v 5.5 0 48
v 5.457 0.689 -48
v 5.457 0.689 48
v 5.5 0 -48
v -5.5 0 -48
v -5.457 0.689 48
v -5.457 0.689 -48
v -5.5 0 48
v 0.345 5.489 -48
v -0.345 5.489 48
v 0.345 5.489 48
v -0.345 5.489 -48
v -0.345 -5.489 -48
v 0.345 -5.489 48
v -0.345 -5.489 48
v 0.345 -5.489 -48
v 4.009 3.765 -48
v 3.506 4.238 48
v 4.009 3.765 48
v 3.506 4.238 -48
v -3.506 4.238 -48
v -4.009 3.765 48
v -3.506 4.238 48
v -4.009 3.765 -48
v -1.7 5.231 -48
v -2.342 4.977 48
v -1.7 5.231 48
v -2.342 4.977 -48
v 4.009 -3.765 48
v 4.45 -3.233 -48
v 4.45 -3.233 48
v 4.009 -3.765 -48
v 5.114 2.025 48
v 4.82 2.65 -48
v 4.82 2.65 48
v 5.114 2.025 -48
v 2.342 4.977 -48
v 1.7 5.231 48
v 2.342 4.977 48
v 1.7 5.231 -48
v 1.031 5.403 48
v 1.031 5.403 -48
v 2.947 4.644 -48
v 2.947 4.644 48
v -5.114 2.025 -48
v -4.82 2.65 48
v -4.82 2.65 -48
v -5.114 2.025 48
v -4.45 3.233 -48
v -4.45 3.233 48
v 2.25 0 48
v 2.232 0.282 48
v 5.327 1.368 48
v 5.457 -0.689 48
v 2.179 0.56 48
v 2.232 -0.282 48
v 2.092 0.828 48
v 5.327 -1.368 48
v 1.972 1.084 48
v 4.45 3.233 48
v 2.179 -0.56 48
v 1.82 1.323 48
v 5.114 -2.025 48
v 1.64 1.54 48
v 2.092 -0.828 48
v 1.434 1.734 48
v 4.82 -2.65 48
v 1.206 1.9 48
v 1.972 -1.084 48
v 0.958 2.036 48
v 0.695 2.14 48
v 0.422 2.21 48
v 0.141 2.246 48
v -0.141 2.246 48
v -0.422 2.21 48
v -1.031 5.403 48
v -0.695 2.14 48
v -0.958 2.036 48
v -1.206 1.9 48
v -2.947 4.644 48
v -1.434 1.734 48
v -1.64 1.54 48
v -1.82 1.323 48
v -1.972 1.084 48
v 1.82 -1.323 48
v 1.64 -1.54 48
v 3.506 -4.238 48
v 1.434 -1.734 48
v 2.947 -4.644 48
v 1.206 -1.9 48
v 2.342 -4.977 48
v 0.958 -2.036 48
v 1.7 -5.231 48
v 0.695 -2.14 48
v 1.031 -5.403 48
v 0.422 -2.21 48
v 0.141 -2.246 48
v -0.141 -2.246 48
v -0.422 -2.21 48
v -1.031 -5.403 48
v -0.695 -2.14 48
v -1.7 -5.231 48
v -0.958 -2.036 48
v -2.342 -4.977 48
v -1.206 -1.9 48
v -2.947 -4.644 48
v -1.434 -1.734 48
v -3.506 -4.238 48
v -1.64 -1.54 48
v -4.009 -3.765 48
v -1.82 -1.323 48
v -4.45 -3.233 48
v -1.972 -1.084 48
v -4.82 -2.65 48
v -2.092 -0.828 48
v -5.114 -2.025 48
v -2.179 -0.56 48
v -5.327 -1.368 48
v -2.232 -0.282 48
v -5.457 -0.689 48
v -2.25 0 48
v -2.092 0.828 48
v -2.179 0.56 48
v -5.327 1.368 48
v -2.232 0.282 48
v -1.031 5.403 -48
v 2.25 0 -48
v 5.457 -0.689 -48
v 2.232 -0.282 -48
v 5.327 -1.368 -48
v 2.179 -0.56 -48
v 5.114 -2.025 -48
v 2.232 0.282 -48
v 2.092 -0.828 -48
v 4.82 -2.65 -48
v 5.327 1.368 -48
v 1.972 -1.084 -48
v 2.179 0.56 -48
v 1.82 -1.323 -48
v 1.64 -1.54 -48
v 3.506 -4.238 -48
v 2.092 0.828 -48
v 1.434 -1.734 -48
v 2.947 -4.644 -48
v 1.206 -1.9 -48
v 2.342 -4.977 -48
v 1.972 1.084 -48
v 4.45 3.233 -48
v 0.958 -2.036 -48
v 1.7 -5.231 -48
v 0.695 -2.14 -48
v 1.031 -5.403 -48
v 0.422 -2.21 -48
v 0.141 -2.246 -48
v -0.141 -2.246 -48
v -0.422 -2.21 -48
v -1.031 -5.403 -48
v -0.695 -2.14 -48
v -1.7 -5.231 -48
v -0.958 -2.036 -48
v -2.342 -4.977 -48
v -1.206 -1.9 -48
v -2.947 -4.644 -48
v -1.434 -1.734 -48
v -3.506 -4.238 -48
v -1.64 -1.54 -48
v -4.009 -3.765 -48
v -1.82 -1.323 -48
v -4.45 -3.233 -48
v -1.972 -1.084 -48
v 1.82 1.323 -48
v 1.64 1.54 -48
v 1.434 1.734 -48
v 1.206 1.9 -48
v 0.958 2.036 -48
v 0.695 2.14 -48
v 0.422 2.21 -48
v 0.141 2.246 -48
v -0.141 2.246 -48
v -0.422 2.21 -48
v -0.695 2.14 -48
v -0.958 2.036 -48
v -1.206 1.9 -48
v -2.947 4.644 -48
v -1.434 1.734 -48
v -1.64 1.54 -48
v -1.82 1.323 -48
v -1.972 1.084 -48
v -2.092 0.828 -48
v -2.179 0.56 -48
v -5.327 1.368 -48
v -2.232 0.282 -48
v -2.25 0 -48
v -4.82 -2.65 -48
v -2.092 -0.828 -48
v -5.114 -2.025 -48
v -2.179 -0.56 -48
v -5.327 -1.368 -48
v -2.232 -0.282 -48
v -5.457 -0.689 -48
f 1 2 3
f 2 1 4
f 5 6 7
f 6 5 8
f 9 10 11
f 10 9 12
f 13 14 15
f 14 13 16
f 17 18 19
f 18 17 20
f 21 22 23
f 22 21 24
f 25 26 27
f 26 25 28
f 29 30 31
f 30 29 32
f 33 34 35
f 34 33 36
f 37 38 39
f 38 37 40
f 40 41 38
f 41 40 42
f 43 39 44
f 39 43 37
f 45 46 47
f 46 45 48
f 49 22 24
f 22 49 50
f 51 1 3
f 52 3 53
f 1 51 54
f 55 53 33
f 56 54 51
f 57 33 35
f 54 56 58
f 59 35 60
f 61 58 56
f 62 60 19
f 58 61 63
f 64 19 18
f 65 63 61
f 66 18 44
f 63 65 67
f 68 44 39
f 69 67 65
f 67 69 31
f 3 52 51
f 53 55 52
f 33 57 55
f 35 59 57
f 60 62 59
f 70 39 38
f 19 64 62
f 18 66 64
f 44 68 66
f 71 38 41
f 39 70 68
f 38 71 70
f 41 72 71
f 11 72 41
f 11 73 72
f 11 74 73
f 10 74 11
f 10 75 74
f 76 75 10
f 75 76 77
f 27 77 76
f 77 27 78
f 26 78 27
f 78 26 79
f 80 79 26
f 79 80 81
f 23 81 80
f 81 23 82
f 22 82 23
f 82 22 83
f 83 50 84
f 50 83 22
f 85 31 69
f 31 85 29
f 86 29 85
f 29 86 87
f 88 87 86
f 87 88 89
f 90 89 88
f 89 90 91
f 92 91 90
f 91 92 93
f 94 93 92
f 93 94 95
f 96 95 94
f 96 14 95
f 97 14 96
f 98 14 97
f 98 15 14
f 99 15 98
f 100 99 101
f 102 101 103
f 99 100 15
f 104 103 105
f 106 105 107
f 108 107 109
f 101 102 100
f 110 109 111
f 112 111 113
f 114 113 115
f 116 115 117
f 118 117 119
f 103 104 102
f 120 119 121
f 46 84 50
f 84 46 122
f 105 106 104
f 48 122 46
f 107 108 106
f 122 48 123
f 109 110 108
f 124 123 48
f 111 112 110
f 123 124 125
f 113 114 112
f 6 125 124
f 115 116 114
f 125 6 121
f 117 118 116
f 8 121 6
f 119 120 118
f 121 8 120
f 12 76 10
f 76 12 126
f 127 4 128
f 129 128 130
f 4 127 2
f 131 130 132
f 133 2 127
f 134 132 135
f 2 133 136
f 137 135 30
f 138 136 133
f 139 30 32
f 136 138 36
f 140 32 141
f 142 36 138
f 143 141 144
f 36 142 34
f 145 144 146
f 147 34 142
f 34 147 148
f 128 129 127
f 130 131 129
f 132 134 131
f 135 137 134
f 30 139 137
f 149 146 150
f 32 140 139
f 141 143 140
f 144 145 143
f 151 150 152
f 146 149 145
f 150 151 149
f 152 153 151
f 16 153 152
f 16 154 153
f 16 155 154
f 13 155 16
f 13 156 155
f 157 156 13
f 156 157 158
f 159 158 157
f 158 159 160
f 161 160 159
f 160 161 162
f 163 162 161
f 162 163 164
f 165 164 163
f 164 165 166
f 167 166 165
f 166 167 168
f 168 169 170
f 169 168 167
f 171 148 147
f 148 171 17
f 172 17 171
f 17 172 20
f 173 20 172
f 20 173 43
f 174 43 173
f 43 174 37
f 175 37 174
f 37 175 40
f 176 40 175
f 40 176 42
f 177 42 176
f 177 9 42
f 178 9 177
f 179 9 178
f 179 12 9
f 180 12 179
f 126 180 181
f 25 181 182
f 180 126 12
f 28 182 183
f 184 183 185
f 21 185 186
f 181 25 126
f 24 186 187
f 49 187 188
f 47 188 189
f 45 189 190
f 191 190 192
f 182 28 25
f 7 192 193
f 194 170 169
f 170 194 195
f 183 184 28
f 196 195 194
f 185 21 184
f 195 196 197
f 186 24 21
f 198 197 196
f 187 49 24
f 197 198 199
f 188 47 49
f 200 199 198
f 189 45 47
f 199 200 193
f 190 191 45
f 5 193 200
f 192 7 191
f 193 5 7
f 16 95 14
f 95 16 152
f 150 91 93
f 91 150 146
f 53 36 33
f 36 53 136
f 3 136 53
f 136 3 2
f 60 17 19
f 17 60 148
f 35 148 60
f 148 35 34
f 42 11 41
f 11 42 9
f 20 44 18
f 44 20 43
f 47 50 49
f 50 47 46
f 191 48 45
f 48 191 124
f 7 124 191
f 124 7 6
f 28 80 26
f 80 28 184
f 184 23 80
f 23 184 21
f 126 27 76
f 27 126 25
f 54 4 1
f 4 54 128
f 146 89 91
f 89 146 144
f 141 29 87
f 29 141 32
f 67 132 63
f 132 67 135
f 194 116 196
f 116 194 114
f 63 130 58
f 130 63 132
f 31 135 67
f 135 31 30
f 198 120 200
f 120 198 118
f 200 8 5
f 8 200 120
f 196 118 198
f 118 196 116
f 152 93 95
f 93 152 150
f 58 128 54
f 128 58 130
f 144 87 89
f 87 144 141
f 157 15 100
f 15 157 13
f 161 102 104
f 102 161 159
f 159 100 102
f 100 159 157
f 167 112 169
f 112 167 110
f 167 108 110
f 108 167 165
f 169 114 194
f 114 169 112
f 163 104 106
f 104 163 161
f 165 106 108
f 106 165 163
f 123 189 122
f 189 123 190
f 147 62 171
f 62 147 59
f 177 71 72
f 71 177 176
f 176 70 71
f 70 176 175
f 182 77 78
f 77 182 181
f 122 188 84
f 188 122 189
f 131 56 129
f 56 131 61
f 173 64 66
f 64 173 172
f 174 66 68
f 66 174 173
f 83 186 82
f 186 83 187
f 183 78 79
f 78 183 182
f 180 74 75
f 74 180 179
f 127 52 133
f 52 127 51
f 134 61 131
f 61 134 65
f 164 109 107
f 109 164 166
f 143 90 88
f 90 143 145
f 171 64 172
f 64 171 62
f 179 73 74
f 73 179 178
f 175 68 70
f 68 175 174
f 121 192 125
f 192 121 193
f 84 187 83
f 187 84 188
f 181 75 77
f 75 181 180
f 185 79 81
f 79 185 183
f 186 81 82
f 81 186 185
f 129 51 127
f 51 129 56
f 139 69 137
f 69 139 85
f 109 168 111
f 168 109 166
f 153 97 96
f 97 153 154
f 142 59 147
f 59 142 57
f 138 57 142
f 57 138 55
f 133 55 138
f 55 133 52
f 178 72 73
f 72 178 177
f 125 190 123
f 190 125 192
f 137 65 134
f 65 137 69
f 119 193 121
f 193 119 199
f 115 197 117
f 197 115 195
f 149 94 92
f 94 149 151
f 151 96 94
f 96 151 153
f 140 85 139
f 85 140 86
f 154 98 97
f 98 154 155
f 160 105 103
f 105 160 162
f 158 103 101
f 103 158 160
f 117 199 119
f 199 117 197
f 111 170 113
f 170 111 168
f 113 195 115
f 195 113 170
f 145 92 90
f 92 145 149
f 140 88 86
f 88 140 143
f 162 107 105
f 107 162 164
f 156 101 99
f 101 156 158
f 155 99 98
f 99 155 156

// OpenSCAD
$fn = 50;


difference() {
	union() {
		translate(v = [0, 0, -48.0000000000]) {
			cylinder(h = 96, r = 5.5000000000);
		}
	}
	union() {
		translate(v = [0, 0, -100.0000000000]) {
			cylinder(h = 200, r = 2.2500000000);
		}
	}
}
